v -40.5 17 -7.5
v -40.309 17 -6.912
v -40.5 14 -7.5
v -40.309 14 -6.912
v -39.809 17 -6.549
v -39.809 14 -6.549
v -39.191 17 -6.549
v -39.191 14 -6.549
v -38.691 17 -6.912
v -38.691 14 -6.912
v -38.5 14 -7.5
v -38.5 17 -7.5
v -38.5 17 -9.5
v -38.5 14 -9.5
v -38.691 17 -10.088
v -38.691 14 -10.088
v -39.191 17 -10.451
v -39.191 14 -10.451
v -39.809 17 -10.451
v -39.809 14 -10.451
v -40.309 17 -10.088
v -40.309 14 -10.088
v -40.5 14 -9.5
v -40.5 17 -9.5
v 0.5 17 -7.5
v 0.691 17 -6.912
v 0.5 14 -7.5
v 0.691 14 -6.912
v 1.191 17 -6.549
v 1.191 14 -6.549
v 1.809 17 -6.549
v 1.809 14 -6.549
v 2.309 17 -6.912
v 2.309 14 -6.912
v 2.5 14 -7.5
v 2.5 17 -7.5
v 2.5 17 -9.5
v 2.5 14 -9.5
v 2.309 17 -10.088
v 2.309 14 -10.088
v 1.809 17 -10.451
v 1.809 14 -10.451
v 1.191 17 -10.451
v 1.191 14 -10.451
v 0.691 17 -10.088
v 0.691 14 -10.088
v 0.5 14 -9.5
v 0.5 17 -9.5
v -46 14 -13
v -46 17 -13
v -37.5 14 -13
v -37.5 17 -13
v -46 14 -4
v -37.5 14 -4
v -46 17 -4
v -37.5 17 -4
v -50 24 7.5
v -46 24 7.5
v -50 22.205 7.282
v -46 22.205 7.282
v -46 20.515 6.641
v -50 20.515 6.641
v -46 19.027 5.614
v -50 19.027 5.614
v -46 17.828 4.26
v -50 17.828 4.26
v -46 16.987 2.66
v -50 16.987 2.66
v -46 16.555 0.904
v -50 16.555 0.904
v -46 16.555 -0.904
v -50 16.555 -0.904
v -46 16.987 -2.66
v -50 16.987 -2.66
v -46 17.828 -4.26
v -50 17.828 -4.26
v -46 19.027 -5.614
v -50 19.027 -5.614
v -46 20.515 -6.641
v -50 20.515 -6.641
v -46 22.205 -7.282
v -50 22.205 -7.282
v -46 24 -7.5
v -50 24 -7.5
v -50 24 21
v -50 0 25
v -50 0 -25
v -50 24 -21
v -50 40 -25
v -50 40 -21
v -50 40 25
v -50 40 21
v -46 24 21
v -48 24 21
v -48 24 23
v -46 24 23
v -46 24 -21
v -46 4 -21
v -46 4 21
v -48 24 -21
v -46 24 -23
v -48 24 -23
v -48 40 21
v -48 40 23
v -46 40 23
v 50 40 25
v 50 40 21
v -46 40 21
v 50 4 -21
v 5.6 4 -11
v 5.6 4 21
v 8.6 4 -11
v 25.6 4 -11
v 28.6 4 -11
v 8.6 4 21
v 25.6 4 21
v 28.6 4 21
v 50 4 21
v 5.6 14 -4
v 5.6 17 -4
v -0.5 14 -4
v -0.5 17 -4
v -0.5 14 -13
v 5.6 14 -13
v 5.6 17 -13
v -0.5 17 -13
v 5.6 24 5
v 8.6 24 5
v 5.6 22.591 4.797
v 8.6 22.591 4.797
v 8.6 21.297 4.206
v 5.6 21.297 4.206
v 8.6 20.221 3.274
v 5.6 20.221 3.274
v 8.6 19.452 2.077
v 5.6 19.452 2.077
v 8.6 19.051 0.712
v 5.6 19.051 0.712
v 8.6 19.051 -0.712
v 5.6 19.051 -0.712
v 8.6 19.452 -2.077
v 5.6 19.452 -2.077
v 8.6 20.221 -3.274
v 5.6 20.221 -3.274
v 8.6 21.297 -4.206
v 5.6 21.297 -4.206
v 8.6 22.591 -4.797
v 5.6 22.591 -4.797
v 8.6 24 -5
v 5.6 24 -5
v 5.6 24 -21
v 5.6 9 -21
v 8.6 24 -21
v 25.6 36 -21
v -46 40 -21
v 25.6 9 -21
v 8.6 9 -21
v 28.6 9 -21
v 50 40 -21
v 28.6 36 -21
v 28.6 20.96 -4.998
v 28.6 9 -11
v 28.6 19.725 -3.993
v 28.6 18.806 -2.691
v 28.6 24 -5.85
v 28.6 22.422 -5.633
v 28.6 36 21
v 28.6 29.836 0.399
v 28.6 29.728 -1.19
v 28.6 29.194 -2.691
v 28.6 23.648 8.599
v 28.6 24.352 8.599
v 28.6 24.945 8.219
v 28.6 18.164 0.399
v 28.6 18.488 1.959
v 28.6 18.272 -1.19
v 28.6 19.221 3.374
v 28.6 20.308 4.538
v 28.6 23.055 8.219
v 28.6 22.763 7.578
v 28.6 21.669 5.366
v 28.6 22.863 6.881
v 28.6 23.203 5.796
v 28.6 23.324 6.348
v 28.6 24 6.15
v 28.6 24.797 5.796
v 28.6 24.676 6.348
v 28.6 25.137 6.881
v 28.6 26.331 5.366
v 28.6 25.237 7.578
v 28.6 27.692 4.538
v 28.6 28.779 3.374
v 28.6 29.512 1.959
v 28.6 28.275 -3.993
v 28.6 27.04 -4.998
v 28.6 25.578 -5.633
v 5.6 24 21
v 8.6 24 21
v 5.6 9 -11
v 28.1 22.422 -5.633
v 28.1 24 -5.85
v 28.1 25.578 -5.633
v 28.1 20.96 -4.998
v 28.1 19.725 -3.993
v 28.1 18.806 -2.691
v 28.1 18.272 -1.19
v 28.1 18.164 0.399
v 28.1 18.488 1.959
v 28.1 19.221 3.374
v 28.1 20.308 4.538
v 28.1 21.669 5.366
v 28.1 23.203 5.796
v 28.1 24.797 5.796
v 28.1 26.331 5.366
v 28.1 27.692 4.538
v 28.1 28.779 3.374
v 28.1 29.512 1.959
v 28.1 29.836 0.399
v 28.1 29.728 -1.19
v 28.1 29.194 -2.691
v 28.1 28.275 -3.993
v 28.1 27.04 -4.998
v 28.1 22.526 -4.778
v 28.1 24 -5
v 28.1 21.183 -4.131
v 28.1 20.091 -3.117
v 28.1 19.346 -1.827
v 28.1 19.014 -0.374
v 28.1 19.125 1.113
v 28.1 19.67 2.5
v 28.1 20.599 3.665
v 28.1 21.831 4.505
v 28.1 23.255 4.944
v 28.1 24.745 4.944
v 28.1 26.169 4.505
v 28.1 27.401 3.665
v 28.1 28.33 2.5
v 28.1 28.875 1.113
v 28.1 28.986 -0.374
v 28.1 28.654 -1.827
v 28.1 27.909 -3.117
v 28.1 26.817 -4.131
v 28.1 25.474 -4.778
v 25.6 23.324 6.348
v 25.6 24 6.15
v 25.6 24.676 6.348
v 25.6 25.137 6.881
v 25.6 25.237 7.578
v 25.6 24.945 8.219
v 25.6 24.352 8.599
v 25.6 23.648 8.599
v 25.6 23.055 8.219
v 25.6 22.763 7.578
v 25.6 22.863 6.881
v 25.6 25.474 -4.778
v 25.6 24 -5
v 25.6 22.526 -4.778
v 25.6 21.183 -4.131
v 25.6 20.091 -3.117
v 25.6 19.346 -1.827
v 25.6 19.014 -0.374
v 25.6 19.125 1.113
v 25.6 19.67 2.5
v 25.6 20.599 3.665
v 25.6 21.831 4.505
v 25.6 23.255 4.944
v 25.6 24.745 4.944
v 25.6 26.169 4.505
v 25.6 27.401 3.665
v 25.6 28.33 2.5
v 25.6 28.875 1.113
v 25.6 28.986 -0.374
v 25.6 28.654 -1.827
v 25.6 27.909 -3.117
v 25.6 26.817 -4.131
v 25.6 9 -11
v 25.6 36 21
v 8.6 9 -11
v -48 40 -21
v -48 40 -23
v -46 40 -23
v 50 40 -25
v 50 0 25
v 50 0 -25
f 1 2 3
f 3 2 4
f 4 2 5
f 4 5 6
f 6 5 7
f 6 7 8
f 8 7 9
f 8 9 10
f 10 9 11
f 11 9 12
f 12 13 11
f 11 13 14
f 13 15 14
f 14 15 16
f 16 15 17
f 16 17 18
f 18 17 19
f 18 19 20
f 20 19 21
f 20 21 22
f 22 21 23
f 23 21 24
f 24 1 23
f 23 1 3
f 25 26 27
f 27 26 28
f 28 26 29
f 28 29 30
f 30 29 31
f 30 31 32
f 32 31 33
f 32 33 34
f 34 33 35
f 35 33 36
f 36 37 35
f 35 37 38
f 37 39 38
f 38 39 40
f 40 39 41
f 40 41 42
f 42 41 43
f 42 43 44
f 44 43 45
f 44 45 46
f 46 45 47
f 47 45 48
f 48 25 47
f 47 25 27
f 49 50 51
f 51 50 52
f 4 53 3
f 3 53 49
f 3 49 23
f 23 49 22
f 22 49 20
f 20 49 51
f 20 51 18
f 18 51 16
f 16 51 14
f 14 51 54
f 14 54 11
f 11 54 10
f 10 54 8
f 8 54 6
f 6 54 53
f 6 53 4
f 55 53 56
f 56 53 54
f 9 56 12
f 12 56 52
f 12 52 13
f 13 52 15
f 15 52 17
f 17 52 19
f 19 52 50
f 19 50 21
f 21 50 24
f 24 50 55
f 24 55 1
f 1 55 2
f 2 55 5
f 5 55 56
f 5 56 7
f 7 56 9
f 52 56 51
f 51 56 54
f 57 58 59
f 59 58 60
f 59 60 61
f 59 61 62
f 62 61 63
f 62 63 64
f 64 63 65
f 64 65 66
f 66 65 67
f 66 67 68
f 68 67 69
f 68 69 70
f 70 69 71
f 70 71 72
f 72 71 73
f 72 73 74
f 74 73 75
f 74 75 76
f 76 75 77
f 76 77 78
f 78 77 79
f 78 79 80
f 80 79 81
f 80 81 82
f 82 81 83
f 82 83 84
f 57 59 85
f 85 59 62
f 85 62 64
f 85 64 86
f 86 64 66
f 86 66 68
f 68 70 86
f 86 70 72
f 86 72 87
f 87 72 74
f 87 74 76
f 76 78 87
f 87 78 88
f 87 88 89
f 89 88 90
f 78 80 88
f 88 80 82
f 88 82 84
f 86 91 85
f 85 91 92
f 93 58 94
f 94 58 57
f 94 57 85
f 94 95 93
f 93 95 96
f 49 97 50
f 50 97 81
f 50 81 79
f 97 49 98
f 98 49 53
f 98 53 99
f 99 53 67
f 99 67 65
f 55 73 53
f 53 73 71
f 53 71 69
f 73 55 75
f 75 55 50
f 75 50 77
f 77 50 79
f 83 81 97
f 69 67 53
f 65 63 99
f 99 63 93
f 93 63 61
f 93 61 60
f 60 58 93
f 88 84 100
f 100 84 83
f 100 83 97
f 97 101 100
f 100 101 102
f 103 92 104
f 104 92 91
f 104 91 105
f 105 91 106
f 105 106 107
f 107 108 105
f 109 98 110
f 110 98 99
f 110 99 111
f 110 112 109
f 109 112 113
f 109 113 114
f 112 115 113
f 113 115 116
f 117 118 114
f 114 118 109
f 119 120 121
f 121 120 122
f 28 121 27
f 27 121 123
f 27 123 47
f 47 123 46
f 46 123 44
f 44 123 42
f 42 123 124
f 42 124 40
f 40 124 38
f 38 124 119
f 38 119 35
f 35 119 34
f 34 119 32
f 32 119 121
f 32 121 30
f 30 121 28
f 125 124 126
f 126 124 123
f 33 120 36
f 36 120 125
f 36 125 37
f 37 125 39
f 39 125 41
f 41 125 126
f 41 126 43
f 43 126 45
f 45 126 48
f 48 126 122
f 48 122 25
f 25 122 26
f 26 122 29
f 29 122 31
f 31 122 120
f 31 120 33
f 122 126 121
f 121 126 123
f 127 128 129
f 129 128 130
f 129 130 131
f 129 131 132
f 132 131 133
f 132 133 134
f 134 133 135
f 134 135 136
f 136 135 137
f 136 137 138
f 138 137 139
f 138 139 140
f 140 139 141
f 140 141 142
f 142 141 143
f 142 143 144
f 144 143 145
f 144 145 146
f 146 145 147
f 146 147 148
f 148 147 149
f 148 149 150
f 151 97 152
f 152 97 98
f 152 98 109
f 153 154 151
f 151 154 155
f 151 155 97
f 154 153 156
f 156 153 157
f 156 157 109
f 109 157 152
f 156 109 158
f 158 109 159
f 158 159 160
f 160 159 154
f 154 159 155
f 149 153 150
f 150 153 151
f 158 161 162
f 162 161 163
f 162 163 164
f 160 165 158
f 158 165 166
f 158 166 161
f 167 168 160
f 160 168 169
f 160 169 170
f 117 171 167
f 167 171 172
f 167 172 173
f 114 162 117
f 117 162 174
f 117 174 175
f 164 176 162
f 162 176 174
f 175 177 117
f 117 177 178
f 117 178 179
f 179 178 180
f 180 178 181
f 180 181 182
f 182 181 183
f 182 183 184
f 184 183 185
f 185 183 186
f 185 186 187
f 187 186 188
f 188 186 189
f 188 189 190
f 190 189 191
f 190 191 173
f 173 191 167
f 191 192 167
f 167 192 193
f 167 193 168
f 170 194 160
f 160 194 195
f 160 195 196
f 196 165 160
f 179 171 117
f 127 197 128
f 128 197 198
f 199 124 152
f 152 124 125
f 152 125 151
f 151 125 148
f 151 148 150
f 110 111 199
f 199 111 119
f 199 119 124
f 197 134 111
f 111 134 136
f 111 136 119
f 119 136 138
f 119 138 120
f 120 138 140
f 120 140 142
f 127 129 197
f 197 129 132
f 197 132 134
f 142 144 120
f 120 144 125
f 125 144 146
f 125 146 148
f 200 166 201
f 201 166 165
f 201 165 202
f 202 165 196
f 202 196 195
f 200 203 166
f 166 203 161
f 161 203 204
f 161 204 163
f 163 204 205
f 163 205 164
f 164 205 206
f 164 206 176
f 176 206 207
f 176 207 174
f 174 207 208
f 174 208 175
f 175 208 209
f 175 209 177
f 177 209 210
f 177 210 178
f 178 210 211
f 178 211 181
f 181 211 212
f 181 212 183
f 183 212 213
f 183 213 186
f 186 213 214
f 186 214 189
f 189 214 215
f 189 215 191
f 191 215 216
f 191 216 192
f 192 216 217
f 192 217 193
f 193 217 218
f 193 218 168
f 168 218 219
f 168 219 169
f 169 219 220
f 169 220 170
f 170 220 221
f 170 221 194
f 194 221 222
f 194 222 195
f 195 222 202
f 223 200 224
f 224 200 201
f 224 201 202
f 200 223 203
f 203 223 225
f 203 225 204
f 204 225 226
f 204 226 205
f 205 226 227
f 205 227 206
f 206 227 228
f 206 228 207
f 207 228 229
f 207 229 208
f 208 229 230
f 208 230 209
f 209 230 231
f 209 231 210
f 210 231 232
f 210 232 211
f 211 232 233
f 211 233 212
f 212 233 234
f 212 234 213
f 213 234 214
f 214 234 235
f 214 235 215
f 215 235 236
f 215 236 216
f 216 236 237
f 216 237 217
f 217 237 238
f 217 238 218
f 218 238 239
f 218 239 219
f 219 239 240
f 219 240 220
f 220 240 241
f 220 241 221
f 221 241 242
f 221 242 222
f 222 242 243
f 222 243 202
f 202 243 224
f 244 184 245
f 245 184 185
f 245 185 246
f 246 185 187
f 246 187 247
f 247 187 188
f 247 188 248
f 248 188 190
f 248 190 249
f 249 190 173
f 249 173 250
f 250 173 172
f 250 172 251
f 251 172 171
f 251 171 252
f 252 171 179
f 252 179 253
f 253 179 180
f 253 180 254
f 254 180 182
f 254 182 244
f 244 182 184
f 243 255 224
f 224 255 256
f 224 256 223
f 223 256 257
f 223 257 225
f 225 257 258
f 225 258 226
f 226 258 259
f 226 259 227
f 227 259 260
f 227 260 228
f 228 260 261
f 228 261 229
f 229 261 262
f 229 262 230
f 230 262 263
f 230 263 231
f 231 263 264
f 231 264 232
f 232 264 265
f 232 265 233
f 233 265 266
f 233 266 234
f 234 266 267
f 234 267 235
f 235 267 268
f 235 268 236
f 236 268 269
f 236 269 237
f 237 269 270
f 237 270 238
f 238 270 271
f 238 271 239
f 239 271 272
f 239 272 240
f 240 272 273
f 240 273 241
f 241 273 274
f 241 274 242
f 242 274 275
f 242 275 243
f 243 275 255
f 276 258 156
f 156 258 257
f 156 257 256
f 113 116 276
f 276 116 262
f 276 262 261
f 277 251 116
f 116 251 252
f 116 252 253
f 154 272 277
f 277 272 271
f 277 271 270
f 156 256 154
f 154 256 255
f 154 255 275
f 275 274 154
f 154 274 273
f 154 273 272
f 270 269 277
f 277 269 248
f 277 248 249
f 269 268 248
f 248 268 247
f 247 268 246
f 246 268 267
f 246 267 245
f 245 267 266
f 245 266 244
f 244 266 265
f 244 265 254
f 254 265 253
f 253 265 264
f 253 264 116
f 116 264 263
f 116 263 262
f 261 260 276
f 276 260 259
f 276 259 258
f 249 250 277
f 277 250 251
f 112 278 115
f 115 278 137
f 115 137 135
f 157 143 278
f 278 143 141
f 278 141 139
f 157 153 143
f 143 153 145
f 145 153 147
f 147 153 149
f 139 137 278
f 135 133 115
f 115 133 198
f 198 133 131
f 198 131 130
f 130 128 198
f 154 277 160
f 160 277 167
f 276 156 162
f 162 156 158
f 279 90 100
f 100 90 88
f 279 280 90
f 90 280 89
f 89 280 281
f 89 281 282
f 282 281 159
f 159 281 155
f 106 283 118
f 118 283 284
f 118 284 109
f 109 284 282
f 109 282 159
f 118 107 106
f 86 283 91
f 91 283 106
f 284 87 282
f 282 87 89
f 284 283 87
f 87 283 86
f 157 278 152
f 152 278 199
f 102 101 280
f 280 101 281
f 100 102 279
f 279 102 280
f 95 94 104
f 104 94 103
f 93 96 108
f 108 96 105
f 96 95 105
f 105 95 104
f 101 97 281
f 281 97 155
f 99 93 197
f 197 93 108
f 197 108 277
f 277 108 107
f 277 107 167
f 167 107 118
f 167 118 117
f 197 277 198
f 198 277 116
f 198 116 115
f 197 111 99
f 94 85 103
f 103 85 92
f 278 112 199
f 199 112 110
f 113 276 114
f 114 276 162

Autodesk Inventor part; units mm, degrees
ref_plane "YZ Plane" through (0, 0, 0) normal (1, 0, 0) x (0, 1, 0)
ref_plane "XZ Plane" through (0, 0, 0) normal (0, 1, 0) x (-1, 0, 0)
ref_plane "XY Plane" through (0, 0, 0) normal (0, 0, 1) x (1, 0, 0)
sketch "Sketch1" plane through (0, 0, 0) normal (0, 1, 0) x (-1, 0, 0)
  line L0 (50, -25) -> (-50, -25)
  line L1 (-50, -25) -> (-50, 25)
  line L2 (-50, 25) -> (50, 25)
  line L3 (50, 25) -> (50, -25)
  point P0 (0, 0)
  dimension "d0" = 100
  dimension "d1" = 50
  dimension "d2" = 25
  dimension "d3" = 50
extrude "Extrusion1" add sketch "Sketch1" along normal blind 4
sketch "Sketch2" plane through (0, 4, 0) normal (0, 1, 0) x (1, 0, 0)
  line L0 (50, -25) -> (-50, -25)
  line L1 (-50, -25) -> (-50, -21)
  line L2 (-50, -21) -> (50, -21)
  line L3 (50, -21) -> (50, -25)
  line L4 (50, 25) -> (-50, 25)
  line L5 (-50, 25) -> (-50, 21)
  line L6 (-50, 21) -> (50, 21)
  line L7 (50, 21) -> (50, 25)
  point P0 (0, 0)
  dimension "d7" = 100
  dimension "d8" = 4
  dimension "d10" = 4
extrude "Extrusion2" add sketch "Sketch2" along normal blind 36
sketch "Sketch3" plane through (0, 4, 0) normal (0, 1, 0) x (1, 0, 0)
  line L0 (50, 21) -> (-50, 21) projected
  line L1 (28.6, 21) -> (25.6, 21)
  line L2 (25.6, 21) -> (25.6, -21)
  line L3 (25.6, -21) -> (28.6, -21)
  line L4 (28.6, -21) -> (28.6, 21)
  line L5 (50, -21) -> (50, 21) projected
  line L6 (50, -21) -> (-50, -21) projected
  point P0 (0, 0)
  dimension "d15" = 21.4
  dimension "d16" = 0
  dimension "d17" = 3
extrude "Extrusion3" add sketch "Sketch3" along normal blind 32 contours L4 L3 L2 L0
sketch "Sketch4" plane through (28.6, 4, 21) normal (1, 0, 0) x (0, 0, -1)
  circle A0 centre (21, 20) radius 5
  line L0 (0, 0) -> (42, 0) projected
  line L1 (0, 0) -> (0, 36) projected
  circle A1 centre (13.6, 20) radius 1.25
  point P0 (21, -4)
  dimension "d20" = 10
  dimension "d22" = 21
  dimension "d23" = 2.5
  dimension "d24" = 7.4
  dimension "d28" = 20
  dimension "d29" = 20
extrude "Extrusion4" cut sketch "Sketch4" against normal up to next
sketch "Sketch5" plane through (28.6, 4, 21) normal (1, 0, 0) x (0, 0, -1)
  circle A0 centre (21, 20) radius 5 projected
  circle A1 centre (21, 20) radius 5.85
  point P0 (21, -4)
  dimension "d30" = 11.7
extrude "Extrusion5" cut sketch "Sketch5" against normal blind 0.5
sketch "Sketch6" plane through (0, 4, 0) normal (0, 1, 0) x (1, 0, 0)
  line L0 (8.6, -21) -> (5.6, -21)
  line L1 (5.6, -21) -> (5.6, 21.1393)
  line L2 (5.6, 21.1393) -> (8.6, 21.1393)
  line L3 (8.6, 21.1393) -> (8.6, -21)
  line L4 (25.6, -21) -> (25.6, 21) projected
  line L5 (50, -21) -> (-50, -21) projected
  line L6 (-50, 21) -> (-50, -21) projected
  point P0 (0, 0)
  dimension "d34" = 3
  dimension "d35" = 0
  dimension "d52" = 55.6
extrude "Extrusion6" add sketch "Sketch6" along normal blind 20
sketch "Sketch7" plane through (5.6, 4, -21) normal (-1, 0, 0) x (0, 0, 1)
  circle A0 centre (21, 20) radius 5 projected
  circle A1 centre (21, 20) radius 5
  point P0 (21, -4)
  dimension "d38" = 10
extrude "Extrusion7" cut sketch "Sketch7" against normal up to next
sketch "Sketch8" plane through (5.6, 4, -21) normal (-1, 0, 0) x (0, 0, 1)
  line L0 (8, 13) -> (17, 13)
  line L1 (17, 13) -> (17, 10)
  line L2 (17, 10) -> (8, 10)
  line L3 (8, 10) -> (8, 13)
  line L4 (0, 0) -> (0, 36) projected
  line L5 (0, 0) -> (42, 0) projected
  point P0 (21, -4)
  dimension "d41" = 8
  dimension "d42" = 9
  dimension "d43" = 10
  dimension "d44" = 3
extrude "Extrusion8" add sketch "Sketch8" along normal blind 6.1
sketch "Sketch10" plane through (0, 4, 0) normal (0, 1, 0) x (1, 0, 0)
  line L0 (-50, -21) -> (-50, -25) projected
  line L1 (-50, 21) -> (50, 21) projected
  line L2 (-50, -21) -> (-46, -21)
  line L3 (-46, -21) -> (-46, 21)
  line L4 (-46, 21) -> (-50, 21)
  line L5 (-50, 21) -> (-50, -21)
  point P0 (0, 0)
  dimension "d53" = 4
extrude "Extrusion10" add sketch "Sketch10" along normal blind 20
sketch "Sketch11" plane through (-50, 0, -25) normal (-1, 0, 0) x (0, 0, 1)
  circle A0 centre (25, 24) radius 7.5
  point P0 (25, 0)
  dimension "d56" = 15
extrude "Extrusion11" cut sketch "Sketch11" against normal up to surface (4 mm away)
sketch "Sketch12" plane through (-46, 4, 21) normal (1, 0, 0) x (0, 0, -1)
  line L0 (34, 13) -> (25, 13)
  line L1 (25, 13) -> (25, 10)
  line L2 (25, 10) -> (34, 10)
  line L3 (34, 10) -> (34, 13)
  line L4 (42, 20) -> (42, 36) projected
  line L5 (-4, -4) -> (46, -4) projected
  point P0 (21, -4)
  dimension "d59" = 9
  dimension "d60" = 8
  dimension "d61" = 3
  dimension "d62" = 14
extrude "Extrusion12" add sketch "Sketch12" along normal blind 8.5
sketch "Sketch9" plane through (5.6, 17, -4) normal (0, 1, 0) x (1, 0, 0)
  line L0 (0, 17) -> (0, 1) projected
  line L1 (-51.6, 3.5) -> (-51.6, 17) projected
  line L2 (-51.6, 9) -> (-43.1, 9) projected
  line L3 (-45.1, 5.5) -> (-45.1, 3.5) construction
  line L4 (-46.1, 5.5) -> (-46.1, 3.5)
  line L5 (-44.1, 3.5) -> (-44.1, 5.5)
  arc A0 (-44.1, 5.5) -> (-46.1, 5.5) centre (-45.1, 5.5) ccw
  arc A1 (-46.1, 3.5) -> (-44.1, 3.5) centre (-45.1, 3.5) ccw
  line L6 (-4.1, 5.5) -> (-4.1, 3.5) construction
  line L7 (-5.1, 5.5) -> (-5.1, 3.5)
  line L8 (-3.1, 3.5) -> (-3.1, 5.5)
  arc A2 (-3.1, 5.5) -> (-5.1, 5.5) centre (-4.1, 5.5) ccw
  arc A3 (-5.1, 3.5) -> (-3.1, 3.5) centre (-4.1, 3.5) ccw
  line L9 (0, 9) -> (-6.1, 9) projected
  point P0 (-5.6, -4)
  point P1 (-45.1, 4.5)
  point P2 (-4.1, 4.5)
  dimension "d68" = 2
  dimension "d70" = 2
  dimension "d71" = 6.5
  dimension "d72" = 2
  dimension "d73" = 2
  dimension "d74" = 4.1
  dimension "d75" = 4.5
  dimension "d76" = 4.5
extrude "Extrusion9" cut sketch "Sketch9" against normal blind 3
sketch "Sketch13" plane through (0, 40, 0) normal (0, 1, 0) x (1, 0, 0)
  line L0 (-48, 21) -> (-46, 21)
  line L1 (-46, 21) -> (-46, 23)
  line L2 (-46, 23) -> (-48, 23)
  line L3 (-48, 23) -> (-48, 21)
  line L4 (-50, 21) -> (50, 21) projected
  line L5 (-50, 25) -> (-50, 21) projected
  line L6 (-48, -23) -> (-46, -23)
  line L7 (-46, -23) -> (-46, -21)
  line L8 (-46, -21) -> (-48, -21)
  line L9 (-48, -21) -> (-48, -23)
  line L10 (-50, -21) -> (-50, -25) projected
  line L11 (50, -21) -> (-50, -21) projected
  point P0 (0, 0)
  dimension "d77" = 2
  dimension "d78" = 2
  dimension "d79" = 0
  dimension "d80" = 2
  dimension "d81" = 2
  dimension "d82" = 2
  dimension "d83" = 2
  dimension "d84" = 0
extrude "Extrusion13" cut sketch "Sketch13" against normal up to surface (16 mm away)
sketch "Sketch14" plane through (28.6, 4, 21) normal (1, 0, 0) x (0, 0, -1)
  line L0 (0, 0) -> (42, 0) projected
  line L1 (42, 0) -> (32, 0)
  line L2 (32, 0) -> (32, 5)
  line L3 (32, 5) -> (42, 5)
  line L4 (42, 5) -> (42, 0)
  point P0 (21, -4)
  dimension "d87" = 10
  dimension "d88" = 5
extrude "Extrusion14" cut sketch "Sketch14" against normal up to surface (23 mm away)
properties part number "BoxBase"
